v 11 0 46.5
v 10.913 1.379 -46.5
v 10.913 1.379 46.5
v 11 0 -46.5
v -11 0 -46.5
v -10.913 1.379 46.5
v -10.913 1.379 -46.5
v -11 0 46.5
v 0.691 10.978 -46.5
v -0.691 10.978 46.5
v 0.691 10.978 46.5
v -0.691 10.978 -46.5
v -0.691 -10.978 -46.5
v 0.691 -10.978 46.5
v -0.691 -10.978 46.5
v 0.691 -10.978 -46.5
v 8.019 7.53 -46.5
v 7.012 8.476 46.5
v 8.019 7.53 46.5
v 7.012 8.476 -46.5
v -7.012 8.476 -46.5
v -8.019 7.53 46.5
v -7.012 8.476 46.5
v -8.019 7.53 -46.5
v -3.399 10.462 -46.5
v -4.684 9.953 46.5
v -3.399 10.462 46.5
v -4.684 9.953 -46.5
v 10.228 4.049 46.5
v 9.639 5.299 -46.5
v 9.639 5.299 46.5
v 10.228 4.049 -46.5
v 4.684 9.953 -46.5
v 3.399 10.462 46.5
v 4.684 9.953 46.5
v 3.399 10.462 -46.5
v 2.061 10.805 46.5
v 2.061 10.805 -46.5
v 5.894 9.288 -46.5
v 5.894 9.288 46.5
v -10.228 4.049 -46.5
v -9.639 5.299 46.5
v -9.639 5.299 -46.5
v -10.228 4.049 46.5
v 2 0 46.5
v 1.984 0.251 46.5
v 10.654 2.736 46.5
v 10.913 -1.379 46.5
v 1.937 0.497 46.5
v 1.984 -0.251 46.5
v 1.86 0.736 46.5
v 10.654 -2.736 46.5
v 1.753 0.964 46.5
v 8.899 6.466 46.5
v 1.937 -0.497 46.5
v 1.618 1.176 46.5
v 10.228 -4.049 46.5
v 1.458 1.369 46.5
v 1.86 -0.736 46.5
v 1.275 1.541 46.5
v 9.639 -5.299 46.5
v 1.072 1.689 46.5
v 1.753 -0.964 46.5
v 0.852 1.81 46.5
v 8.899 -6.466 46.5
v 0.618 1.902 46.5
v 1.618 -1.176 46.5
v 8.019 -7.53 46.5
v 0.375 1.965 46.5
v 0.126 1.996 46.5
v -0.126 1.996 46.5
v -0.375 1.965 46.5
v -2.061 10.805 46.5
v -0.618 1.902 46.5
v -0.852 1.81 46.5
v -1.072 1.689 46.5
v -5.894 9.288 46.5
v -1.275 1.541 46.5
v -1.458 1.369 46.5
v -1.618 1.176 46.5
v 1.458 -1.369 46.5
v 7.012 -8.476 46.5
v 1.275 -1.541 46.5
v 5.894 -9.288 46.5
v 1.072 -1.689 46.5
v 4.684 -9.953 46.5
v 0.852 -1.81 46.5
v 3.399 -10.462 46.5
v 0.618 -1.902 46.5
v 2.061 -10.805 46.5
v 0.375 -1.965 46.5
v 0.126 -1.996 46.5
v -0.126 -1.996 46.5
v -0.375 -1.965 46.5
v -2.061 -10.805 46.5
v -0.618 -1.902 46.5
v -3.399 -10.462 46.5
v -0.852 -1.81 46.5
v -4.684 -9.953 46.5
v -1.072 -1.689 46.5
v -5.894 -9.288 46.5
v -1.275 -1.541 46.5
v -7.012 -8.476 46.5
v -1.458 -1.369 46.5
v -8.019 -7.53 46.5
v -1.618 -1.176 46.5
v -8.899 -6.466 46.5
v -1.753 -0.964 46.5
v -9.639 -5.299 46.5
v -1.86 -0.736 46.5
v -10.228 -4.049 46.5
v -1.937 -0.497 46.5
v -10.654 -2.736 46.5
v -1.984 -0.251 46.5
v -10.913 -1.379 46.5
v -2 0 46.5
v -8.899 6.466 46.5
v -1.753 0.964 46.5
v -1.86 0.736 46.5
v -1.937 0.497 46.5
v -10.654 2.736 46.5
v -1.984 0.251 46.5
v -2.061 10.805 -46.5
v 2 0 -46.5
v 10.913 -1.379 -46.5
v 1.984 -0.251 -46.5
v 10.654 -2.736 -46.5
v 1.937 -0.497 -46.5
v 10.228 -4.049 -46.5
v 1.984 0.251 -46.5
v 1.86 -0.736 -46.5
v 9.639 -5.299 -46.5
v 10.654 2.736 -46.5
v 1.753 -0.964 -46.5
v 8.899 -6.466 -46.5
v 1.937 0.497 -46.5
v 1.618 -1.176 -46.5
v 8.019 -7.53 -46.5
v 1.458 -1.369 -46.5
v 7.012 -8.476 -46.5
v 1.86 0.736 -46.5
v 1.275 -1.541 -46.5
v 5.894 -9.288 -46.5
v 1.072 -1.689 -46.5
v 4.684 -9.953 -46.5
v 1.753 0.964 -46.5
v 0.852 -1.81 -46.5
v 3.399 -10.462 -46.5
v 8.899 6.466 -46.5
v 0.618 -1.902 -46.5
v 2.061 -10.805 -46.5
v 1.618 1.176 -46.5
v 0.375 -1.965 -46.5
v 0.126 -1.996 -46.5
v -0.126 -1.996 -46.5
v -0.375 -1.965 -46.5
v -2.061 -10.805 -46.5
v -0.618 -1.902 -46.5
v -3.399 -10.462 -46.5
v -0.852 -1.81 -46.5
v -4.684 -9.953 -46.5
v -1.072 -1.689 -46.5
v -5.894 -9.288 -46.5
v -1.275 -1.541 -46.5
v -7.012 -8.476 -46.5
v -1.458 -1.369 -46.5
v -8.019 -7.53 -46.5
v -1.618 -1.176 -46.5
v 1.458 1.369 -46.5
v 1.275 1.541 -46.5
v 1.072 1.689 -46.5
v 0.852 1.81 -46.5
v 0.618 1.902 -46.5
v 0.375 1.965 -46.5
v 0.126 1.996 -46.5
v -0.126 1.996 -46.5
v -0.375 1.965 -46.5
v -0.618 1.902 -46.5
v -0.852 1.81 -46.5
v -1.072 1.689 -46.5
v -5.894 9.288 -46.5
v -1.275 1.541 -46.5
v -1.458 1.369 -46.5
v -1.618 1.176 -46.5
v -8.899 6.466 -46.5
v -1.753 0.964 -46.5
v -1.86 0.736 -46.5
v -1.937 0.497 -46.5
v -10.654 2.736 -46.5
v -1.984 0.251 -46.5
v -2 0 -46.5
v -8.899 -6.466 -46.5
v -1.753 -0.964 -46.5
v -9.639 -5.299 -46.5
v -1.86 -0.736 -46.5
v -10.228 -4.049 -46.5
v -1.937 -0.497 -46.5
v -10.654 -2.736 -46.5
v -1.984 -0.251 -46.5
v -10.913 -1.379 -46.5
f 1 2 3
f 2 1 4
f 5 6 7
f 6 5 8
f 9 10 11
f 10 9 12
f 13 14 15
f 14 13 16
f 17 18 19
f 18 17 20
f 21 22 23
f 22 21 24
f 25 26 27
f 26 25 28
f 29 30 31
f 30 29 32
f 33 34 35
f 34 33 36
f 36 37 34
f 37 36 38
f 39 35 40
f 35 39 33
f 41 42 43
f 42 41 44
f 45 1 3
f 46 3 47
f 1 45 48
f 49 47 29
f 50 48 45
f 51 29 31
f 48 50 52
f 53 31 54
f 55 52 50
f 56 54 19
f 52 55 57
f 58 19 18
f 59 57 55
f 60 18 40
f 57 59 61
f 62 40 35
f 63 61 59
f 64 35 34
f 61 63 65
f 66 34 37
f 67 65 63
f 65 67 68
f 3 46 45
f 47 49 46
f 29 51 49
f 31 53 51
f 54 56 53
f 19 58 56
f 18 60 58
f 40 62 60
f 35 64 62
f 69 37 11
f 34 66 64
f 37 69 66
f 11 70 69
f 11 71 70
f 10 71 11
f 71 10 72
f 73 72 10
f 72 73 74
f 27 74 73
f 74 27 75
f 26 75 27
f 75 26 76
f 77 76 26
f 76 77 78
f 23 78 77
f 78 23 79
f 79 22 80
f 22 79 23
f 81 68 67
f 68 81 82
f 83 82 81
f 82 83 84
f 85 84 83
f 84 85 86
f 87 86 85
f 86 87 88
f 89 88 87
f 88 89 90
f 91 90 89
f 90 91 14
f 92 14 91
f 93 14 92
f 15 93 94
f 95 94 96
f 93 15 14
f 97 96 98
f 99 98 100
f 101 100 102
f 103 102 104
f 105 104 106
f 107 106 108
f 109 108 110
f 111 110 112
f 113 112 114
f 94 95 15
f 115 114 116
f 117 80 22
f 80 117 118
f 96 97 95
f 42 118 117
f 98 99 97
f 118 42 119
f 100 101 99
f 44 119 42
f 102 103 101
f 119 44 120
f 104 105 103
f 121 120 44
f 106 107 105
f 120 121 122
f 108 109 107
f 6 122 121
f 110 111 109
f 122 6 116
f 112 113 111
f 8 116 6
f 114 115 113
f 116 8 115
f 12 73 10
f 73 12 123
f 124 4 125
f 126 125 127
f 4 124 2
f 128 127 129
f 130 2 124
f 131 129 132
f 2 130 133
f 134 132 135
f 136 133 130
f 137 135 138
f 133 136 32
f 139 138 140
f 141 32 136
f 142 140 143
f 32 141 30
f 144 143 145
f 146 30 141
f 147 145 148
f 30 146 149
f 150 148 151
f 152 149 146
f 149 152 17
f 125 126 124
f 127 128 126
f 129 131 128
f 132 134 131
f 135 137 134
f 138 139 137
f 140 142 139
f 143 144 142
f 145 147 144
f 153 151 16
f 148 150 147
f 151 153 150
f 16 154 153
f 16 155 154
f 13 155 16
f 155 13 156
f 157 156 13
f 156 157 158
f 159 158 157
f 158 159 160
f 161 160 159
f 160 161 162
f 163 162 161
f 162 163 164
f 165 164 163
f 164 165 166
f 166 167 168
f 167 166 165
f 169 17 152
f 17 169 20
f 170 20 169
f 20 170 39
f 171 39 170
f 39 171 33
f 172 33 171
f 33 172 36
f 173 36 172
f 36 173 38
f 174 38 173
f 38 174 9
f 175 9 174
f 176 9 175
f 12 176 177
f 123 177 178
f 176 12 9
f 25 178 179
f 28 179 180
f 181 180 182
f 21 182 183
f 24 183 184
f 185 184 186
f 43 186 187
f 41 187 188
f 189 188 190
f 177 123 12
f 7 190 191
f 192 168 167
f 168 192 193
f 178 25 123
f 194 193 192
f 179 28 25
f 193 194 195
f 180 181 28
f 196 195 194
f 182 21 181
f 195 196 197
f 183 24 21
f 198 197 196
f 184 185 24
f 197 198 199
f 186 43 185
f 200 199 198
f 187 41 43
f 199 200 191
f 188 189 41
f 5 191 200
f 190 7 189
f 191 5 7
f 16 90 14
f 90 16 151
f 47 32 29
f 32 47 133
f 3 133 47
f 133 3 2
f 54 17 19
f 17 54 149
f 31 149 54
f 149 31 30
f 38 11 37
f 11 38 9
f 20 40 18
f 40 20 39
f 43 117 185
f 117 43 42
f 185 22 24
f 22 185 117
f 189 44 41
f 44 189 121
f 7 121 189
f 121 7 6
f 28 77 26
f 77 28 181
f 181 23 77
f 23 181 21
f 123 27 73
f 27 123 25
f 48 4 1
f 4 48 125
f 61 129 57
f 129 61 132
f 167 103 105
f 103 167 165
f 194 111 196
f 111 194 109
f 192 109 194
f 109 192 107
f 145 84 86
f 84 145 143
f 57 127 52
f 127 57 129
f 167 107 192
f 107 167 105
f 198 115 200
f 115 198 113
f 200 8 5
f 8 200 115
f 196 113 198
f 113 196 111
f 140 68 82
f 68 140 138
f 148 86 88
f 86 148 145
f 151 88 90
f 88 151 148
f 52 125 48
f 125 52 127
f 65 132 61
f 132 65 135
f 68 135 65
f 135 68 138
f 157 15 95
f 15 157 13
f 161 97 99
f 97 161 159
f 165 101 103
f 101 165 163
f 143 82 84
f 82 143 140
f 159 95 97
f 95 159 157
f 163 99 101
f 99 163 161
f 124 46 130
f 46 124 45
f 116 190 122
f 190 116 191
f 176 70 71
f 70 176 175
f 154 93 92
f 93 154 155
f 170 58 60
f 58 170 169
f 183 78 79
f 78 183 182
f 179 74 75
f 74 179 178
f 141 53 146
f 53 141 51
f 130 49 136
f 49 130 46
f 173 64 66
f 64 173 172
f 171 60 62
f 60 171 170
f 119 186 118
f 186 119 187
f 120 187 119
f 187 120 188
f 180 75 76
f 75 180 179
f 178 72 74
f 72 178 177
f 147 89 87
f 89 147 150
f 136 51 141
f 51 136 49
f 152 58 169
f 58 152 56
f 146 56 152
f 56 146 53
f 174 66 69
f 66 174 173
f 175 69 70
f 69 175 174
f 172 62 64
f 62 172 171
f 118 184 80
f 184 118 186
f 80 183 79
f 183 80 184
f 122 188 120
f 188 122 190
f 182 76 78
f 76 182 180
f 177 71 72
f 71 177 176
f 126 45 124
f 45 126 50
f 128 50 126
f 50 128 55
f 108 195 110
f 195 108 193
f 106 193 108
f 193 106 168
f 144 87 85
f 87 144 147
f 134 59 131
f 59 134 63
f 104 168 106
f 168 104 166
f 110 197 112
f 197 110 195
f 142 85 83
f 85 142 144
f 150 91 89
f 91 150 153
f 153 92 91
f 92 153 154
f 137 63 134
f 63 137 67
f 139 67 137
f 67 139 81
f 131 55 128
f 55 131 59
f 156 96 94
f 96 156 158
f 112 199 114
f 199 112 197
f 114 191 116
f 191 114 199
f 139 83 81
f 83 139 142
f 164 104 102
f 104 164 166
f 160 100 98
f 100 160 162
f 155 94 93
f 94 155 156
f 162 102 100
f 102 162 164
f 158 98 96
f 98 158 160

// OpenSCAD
$fn = 50;


difference() {
	union() {
		translate(v = [0, 0, -46.5000000000]) {
			cylinder(h = 93, r = 11.0000000000);
		}
	}
	union() {
		translate(v = [0, 0, -100.0000000000]) {
			cylinder(h = 200, r = 2);
		}
	}
}
